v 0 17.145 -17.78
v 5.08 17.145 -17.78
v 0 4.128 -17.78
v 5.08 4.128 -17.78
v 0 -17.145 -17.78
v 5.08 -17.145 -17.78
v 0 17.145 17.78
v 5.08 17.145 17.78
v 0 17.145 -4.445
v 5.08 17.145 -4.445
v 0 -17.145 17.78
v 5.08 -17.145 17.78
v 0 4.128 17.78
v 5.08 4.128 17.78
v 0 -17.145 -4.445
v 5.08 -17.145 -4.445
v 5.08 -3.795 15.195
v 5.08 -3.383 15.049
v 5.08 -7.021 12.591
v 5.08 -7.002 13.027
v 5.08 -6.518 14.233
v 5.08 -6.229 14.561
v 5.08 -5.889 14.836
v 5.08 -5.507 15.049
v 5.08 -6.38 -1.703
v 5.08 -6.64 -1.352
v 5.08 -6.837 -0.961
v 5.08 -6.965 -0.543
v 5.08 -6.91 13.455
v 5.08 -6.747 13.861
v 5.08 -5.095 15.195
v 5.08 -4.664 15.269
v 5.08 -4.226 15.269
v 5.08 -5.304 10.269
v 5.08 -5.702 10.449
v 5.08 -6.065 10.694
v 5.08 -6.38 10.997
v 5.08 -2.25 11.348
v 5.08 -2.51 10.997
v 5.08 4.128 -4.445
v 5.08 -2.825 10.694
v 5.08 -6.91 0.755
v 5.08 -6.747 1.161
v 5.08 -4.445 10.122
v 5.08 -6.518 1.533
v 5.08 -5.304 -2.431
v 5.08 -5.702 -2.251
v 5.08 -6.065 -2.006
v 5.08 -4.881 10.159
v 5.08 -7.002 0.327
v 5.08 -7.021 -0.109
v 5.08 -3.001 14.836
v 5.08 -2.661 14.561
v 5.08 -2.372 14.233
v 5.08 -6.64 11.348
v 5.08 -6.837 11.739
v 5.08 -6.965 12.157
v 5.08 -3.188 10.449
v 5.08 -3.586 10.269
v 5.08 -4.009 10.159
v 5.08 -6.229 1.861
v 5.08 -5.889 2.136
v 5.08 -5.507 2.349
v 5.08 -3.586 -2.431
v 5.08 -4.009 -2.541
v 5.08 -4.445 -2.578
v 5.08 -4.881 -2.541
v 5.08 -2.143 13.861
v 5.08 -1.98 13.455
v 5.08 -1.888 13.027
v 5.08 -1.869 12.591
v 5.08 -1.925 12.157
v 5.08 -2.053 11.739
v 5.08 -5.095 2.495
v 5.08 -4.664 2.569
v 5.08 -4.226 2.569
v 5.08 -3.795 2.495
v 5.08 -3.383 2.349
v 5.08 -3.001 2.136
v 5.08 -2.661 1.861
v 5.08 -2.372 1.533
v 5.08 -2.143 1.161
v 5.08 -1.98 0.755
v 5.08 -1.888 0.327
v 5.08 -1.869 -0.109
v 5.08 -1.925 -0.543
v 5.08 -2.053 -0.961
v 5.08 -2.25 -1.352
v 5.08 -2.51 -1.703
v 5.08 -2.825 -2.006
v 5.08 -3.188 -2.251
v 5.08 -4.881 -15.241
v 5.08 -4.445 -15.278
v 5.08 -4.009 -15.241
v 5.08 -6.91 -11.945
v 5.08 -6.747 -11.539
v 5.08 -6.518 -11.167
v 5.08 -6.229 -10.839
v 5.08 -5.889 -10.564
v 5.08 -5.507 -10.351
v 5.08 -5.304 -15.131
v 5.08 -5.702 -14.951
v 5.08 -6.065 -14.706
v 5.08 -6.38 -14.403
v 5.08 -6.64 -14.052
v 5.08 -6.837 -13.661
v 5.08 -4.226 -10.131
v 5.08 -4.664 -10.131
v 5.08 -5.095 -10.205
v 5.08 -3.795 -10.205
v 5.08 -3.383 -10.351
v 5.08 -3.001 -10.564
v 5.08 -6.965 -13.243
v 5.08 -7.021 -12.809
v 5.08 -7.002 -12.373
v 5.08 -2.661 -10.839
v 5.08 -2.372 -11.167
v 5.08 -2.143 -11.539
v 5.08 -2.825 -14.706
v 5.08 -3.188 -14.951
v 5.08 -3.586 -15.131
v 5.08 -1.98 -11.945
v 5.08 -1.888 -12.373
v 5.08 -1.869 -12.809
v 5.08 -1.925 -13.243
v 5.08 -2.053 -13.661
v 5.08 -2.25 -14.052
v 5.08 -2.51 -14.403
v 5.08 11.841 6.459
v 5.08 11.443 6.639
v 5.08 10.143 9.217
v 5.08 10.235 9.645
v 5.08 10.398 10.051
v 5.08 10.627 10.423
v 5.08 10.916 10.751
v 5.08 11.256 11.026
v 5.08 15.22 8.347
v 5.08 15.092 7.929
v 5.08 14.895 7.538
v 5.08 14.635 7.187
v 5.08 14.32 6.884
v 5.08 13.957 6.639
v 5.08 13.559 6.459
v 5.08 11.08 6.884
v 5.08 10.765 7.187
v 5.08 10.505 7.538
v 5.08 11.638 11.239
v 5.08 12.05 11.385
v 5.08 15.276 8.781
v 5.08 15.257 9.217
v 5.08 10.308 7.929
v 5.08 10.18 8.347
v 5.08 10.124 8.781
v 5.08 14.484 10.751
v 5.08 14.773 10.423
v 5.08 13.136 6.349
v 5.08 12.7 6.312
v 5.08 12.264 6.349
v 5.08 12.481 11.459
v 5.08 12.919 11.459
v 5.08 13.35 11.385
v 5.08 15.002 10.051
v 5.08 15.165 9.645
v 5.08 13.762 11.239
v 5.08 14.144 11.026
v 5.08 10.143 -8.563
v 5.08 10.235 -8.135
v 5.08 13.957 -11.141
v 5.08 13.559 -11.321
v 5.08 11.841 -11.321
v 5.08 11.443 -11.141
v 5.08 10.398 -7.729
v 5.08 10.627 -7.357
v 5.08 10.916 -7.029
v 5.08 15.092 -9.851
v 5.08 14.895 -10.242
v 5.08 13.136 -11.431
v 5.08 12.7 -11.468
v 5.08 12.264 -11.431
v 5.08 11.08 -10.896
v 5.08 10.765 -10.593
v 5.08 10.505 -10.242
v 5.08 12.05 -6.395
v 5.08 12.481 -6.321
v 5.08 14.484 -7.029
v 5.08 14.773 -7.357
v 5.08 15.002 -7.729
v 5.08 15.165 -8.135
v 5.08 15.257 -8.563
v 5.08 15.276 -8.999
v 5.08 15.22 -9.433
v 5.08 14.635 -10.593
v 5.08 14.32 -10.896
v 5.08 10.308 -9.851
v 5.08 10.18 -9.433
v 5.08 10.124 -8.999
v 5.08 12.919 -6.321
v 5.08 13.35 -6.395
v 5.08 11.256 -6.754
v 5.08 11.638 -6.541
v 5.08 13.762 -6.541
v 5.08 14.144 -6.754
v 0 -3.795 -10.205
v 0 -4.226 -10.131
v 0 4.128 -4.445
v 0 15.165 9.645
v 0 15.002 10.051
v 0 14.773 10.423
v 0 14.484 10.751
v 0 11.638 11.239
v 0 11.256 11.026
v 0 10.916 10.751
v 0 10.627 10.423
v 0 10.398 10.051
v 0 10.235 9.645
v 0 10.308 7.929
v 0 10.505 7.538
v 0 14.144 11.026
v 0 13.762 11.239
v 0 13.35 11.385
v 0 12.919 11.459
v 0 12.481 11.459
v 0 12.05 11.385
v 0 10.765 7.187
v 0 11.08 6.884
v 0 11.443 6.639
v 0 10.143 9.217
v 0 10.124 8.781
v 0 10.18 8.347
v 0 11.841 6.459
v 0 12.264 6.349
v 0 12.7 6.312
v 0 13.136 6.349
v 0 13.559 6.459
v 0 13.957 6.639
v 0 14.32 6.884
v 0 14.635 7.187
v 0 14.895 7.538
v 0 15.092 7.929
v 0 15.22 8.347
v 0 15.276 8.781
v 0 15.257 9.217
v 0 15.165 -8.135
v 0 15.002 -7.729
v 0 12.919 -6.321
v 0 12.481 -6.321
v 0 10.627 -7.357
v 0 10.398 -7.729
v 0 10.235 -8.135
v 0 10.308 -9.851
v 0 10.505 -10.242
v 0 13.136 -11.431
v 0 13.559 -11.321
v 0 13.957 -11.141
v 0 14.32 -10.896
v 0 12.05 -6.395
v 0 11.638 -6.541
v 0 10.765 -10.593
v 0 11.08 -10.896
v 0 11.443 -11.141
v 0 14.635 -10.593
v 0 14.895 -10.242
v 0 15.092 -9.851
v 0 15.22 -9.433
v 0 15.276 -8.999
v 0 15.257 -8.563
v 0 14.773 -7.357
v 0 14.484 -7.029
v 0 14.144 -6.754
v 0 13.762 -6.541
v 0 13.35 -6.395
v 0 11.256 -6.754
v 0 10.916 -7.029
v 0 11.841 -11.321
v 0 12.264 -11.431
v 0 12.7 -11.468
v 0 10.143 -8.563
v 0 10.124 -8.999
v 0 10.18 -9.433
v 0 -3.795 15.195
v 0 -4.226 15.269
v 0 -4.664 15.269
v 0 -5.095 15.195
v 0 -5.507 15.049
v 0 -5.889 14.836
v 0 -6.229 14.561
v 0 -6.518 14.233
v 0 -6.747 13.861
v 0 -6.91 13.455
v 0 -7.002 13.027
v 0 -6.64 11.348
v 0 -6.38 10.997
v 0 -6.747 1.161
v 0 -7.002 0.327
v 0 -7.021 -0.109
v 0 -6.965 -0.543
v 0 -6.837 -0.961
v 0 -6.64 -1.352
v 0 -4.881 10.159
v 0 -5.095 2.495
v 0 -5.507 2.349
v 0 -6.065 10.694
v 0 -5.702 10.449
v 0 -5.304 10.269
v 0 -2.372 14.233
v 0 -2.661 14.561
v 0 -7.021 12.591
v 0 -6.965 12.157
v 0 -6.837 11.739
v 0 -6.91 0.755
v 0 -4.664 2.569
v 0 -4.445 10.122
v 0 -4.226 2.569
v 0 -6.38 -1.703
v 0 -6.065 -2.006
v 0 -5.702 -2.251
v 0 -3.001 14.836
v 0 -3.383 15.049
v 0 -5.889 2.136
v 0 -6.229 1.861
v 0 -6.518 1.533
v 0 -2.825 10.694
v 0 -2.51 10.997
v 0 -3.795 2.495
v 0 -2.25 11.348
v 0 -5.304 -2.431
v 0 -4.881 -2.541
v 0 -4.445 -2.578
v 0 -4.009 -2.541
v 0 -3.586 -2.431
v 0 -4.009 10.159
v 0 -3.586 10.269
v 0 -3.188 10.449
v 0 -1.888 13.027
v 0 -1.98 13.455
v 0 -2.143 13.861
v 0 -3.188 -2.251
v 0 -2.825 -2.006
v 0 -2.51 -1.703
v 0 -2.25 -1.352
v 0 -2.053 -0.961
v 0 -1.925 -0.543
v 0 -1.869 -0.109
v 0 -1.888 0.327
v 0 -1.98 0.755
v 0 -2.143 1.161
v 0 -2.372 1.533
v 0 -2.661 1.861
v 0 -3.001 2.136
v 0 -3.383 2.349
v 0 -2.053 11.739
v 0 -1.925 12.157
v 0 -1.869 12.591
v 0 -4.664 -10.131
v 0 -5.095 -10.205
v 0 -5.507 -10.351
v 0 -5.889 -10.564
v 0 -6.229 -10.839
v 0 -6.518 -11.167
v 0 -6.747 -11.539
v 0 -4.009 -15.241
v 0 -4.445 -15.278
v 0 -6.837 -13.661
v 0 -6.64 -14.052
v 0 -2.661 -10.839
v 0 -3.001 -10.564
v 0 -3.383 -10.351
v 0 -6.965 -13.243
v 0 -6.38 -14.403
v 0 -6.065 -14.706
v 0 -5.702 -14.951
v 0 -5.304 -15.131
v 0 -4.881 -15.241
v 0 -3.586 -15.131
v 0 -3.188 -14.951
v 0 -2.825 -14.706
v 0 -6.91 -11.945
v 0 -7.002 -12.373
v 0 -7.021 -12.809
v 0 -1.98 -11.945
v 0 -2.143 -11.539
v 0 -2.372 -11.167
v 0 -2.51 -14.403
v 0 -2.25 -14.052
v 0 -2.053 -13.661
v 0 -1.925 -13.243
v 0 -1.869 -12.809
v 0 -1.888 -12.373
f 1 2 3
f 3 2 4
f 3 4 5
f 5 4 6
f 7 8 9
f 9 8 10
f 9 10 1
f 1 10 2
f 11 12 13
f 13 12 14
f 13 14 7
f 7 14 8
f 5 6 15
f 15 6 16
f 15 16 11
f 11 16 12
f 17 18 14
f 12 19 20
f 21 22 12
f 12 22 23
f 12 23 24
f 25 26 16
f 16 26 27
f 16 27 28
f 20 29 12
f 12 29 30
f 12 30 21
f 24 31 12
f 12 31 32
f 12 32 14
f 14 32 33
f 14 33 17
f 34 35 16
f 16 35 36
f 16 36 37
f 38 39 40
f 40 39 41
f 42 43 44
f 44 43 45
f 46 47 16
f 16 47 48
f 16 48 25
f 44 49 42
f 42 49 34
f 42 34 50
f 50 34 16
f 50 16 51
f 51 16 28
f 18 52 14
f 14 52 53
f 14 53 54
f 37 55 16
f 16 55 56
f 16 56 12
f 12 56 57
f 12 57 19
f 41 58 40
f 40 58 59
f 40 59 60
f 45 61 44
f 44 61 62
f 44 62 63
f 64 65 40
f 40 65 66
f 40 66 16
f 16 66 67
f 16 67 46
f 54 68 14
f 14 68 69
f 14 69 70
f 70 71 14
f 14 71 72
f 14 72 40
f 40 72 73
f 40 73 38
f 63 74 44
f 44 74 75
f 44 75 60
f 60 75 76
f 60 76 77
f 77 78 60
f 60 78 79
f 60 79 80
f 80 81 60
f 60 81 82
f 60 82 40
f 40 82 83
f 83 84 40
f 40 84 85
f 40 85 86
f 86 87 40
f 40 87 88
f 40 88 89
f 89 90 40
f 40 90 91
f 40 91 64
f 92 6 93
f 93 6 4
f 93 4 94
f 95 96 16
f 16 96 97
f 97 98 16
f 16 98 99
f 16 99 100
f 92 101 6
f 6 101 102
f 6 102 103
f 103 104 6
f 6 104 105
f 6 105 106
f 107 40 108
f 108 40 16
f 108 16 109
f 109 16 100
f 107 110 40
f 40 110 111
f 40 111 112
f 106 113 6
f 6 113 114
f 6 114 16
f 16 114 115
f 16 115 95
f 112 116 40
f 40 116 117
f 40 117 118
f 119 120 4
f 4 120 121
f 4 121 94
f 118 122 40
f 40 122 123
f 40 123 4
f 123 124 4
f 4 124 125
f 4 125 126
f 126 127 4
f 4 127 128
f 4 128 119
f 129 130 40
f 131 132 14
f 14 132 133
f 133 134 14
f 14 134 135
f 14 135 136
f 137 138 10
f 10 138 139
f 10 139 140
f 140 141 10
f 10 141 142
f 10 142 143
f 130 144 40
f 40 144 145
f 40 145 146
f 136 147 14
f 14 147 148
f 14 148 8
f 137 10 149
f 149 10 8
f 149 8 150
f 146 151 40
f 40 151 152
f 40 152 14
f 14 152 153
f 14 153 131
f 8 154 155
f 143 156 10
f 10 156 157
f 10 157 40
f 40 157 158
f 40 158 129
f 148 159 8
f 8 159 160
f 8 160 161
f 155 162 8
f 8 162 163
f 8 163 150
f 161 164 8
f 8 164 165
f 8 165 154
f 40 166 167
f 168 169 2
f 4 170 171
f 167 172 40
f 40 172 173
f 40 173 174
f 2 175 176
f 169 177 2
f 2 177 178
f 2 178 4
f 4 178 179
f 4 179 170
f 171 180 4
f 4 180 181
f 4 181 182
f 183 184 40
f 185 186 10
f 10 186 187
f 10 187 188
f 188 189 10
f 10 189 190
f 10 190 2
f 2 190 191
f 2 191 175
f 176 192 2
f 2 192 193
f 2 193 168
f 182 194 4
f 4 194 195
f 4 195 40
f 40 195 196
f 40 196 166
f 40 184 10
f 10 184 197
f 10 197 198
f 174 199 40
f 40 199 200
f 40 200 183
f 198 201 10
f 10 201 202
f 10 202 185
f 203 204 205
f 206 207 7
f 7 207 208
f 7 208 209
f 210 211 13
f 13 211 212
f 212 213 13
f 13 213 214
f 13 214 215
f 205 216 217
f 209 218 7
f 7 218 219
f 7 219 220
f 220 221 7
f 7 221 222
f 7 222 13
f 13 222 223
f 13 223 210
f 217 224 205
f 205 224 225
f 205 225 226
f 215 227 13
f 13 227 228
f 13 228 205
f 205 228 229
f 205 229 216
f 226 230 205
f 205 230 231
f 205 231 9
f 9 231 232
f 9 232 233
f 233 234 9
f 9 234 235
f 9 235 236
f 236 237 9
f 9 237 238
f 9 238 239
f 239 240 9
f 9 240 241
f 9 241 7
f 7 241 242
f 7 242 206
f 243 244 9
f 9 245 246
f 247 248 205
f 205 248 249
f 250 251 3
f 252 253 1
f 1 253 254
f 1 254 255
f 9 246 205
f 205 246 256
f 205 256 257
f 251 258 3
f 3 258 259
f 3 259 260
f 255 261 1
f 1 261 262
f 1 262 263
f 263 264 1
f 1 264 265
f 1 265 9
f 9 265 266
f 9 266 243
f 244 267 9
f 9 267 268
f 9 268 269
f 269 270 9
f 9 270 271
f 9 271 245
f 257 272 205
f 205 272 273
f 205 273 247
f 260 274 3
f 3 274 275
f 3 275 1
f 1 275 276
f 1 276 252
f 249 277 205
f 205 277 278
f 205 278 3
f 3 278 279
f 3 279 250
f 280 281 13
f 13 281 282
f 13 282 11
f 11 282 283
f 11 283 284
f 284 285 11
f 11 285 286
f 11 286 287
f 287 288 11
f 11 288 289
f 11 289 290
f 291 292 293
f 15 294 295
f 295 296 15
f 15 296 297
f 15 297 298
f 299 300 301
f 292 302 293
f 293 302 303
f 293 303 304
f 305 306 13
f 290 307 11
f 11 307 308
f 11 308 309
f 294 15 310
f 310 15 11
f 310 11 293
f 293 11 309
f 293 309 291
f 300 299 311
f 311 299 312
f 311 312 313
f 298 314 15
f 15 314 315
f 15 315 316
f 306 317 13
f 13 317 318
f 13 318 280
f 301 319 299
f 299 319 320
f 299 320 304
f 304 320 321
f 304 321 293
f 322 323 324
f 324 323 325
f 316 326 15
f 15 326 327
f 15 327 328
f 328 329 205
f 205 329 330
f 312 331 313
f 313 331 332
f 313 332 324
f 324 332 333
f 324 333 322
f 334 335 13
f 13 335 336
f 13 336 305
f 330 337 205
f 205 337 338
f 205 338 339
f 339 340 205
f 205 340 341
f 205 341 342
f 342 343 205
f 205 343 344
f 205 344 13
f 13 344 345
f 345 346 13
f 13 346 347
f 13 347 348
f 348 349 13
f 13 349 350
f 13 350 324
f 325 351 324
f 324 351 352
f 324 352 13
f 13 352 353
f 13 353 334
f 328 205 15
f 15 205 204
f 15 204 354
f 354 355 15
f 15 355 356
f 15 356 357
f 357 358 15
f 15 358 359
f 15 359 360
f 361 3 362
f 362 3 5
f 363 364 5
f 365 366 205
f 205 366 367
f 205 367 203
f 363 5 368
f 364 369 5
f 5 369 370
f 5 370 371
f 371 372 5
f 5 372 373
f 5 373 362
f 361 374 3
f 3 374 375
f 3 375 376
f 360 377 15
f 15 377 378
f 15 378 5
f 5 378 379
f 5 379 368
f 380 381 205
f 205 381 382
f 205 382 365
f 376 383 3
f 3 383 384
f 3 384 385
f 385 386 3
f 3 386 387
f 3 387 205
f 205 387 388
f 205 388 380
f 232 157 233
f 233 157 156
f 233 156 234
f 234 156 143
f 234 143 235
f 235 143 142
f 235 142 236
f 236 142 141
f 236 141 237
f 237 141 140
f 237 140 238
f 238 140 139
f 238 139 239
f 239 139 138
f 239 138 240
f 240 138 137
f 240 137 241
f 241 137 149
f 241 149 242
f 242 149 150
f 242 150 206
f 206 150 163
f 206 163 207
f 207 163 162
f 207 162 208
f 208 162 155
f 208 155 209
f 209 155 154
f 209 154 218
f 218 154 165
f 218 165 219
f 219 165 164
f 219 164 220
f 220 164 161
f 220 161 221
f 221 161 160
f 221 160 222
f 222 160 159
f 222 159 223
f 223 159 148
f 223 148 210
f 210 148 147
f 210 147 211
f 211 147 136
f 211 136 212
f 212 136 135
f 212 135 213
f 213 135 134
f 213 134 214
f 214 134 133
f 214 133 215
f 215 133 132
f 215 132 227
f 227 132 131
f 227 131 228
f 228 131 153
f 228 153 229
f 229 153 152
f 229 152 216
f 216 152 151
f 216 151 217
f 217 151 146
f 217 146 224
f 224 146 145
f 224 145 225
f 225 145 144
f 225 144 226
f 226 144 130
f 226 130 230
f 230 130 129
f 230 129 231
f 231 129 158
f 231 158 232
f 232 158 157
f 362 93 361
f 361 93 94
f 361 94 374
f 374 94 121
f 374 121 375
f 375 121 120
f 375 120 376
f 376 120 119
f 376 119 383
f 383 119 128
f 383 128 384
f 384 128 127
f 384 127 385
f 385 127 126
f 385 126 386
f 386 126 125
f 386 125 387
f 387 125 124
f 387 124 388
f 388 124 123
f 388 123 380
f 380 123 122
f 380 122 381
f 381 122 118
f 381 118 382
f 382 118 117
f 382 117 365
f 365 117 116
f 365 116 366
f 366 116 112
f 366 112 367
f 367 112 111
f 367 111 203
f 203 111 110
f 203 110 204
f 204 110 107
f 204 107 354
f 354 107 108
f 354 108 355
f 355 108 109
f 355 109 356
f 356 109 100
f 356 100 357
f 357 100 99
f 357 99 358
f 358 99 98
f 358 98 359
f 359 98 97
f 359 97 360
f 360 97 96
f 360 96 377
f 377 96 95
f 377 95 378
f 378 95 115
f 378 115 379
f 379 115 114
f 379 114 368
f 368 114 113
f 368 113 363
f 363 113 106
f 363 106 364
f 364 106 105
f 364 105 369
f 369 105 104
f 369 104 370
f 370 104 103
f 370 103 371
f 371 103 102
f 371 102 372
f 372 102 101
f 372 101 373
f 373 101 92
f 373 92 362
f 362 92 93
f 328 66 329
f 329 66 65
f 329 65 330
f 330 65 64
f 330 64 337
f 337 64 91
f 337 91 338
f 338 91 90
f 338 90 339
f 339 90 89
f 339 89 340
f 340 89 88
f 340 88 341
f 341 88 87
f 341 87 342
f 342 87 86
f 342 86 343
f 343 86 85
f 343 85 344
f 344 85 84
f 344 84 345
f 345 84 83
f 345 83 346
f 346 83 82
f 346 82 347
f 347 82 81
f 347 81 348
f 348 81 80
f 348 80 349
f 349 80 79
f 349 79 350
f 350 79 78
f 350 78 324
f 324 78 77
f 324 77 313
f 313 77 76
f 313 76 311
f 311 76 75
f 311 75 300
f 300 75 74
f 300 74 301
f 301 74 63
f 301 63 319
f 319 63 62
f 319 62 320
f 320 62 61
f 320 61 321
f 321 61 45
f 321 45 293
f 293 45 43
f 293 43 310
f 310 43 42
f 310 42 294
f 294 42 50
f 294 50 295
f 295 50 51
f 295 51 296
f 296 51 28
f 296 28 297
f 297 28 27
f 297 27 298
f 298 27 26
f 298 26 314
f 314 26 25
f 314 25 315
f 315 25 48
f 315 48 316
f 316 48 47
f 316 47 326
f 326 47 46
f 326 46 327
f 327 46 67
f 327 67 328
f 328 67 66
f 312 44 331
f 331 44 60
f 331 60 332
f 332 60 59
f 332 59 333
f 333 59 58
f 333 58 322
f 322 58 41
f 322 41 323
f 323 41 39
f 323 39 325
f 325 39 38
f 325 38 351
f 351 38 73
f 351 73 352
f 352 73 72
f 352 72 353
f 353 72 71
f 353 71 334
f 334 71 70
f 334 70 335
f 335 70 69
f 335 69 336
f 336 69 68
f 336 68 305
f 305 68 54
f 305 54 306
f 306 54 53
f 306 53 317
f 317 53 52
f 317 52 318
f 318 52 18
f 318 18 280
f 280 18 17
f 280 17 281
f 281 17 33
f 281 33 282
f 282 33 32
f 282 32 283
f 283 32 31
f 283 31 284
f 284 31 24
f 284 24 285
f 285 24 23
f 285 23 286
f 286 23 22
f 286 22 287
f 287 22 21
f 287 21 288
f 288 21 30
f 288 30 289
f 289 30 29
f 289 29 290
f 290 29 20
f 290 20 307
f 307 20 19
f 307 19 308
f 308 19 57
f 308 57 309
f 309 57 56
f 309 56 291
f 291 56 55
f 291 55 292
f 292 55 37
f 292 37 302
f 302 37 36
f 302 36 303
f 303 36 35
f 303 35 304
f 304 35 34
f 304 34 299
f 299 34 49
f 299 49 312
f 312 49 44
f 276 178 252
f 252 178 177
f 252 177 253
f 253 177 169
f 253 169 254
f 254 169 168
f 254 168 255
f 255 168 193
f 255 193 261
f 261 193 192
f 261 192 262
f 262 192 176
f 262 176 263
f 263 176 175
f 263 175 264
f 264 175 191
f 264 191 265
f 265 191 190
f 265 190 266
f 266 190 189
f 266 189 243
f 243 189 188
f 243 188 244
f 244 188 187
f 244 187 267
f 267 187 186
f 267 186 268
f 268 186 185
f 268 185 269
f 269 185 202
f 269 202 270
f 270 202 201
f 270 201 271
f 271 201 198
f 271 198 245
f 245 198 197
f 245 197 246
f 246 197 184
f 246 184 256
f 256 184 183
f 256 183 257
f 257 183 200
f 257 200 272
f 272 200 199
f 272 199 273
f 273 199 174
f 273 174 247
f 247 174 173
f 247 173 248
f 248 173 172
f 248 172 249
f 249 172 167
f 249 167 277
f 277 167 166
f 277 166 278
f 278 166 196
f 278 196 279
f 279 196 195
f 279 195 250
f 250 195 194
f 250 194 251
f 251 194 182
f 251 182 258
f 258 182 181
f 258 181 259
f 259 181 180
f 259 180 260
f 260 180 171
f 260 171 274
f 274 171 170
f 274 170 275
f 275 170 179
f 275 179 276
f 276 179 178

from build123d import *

# Parameters (mm, degrees)
SKETCH1_W           = 35.56
SKETCH1_H           = 34.29
BOSS_EXTRUDE1_DEPTH = 5.08
SKETCH2_R           = 2.5781
CUT_EXTRUDE1_DEPTH  = 26.216776658


with BuildPart() as part:
    # Sketch1 → Boss-Extrude1 (new body)
    with BuildSketch(Plane(origin=(0, 0, 0), x_dir=(0, 0, -1), z_dir=(1, 0, 0))):
        Rectangle(SKETCH1_W, SKETCH1_H)
    extrude(amount=BOSS_EXTRUDE1_DEPTH)

    # Sketch2 → Cut-Extrude1 (cut, through all)
    with BuildSketch(Plane(origin=(5.08, 0, 0), x_dir=(0, 0, -1), z_dir=(1, 0, 0))):
        with Locations((-8.89, 12.7)):
            Circle(SKETCH2_R)
        with Locations((8.89, 12.7)):
            Circle(SKETCH2_R)
        with Locations((-12.7, -4.445)):
            Circle(SKETCH2_R)
        with Locations((0, -4.445)):
            Circle(SKETCH2_R)
        with Locations((12.7, -4.445)):
            Circle(SKETCH2_R)
    extrude(amount=-CUT_EXTRUDE1_DEPTH, mode=Mode.SUBTRACT)


solid = part.part
